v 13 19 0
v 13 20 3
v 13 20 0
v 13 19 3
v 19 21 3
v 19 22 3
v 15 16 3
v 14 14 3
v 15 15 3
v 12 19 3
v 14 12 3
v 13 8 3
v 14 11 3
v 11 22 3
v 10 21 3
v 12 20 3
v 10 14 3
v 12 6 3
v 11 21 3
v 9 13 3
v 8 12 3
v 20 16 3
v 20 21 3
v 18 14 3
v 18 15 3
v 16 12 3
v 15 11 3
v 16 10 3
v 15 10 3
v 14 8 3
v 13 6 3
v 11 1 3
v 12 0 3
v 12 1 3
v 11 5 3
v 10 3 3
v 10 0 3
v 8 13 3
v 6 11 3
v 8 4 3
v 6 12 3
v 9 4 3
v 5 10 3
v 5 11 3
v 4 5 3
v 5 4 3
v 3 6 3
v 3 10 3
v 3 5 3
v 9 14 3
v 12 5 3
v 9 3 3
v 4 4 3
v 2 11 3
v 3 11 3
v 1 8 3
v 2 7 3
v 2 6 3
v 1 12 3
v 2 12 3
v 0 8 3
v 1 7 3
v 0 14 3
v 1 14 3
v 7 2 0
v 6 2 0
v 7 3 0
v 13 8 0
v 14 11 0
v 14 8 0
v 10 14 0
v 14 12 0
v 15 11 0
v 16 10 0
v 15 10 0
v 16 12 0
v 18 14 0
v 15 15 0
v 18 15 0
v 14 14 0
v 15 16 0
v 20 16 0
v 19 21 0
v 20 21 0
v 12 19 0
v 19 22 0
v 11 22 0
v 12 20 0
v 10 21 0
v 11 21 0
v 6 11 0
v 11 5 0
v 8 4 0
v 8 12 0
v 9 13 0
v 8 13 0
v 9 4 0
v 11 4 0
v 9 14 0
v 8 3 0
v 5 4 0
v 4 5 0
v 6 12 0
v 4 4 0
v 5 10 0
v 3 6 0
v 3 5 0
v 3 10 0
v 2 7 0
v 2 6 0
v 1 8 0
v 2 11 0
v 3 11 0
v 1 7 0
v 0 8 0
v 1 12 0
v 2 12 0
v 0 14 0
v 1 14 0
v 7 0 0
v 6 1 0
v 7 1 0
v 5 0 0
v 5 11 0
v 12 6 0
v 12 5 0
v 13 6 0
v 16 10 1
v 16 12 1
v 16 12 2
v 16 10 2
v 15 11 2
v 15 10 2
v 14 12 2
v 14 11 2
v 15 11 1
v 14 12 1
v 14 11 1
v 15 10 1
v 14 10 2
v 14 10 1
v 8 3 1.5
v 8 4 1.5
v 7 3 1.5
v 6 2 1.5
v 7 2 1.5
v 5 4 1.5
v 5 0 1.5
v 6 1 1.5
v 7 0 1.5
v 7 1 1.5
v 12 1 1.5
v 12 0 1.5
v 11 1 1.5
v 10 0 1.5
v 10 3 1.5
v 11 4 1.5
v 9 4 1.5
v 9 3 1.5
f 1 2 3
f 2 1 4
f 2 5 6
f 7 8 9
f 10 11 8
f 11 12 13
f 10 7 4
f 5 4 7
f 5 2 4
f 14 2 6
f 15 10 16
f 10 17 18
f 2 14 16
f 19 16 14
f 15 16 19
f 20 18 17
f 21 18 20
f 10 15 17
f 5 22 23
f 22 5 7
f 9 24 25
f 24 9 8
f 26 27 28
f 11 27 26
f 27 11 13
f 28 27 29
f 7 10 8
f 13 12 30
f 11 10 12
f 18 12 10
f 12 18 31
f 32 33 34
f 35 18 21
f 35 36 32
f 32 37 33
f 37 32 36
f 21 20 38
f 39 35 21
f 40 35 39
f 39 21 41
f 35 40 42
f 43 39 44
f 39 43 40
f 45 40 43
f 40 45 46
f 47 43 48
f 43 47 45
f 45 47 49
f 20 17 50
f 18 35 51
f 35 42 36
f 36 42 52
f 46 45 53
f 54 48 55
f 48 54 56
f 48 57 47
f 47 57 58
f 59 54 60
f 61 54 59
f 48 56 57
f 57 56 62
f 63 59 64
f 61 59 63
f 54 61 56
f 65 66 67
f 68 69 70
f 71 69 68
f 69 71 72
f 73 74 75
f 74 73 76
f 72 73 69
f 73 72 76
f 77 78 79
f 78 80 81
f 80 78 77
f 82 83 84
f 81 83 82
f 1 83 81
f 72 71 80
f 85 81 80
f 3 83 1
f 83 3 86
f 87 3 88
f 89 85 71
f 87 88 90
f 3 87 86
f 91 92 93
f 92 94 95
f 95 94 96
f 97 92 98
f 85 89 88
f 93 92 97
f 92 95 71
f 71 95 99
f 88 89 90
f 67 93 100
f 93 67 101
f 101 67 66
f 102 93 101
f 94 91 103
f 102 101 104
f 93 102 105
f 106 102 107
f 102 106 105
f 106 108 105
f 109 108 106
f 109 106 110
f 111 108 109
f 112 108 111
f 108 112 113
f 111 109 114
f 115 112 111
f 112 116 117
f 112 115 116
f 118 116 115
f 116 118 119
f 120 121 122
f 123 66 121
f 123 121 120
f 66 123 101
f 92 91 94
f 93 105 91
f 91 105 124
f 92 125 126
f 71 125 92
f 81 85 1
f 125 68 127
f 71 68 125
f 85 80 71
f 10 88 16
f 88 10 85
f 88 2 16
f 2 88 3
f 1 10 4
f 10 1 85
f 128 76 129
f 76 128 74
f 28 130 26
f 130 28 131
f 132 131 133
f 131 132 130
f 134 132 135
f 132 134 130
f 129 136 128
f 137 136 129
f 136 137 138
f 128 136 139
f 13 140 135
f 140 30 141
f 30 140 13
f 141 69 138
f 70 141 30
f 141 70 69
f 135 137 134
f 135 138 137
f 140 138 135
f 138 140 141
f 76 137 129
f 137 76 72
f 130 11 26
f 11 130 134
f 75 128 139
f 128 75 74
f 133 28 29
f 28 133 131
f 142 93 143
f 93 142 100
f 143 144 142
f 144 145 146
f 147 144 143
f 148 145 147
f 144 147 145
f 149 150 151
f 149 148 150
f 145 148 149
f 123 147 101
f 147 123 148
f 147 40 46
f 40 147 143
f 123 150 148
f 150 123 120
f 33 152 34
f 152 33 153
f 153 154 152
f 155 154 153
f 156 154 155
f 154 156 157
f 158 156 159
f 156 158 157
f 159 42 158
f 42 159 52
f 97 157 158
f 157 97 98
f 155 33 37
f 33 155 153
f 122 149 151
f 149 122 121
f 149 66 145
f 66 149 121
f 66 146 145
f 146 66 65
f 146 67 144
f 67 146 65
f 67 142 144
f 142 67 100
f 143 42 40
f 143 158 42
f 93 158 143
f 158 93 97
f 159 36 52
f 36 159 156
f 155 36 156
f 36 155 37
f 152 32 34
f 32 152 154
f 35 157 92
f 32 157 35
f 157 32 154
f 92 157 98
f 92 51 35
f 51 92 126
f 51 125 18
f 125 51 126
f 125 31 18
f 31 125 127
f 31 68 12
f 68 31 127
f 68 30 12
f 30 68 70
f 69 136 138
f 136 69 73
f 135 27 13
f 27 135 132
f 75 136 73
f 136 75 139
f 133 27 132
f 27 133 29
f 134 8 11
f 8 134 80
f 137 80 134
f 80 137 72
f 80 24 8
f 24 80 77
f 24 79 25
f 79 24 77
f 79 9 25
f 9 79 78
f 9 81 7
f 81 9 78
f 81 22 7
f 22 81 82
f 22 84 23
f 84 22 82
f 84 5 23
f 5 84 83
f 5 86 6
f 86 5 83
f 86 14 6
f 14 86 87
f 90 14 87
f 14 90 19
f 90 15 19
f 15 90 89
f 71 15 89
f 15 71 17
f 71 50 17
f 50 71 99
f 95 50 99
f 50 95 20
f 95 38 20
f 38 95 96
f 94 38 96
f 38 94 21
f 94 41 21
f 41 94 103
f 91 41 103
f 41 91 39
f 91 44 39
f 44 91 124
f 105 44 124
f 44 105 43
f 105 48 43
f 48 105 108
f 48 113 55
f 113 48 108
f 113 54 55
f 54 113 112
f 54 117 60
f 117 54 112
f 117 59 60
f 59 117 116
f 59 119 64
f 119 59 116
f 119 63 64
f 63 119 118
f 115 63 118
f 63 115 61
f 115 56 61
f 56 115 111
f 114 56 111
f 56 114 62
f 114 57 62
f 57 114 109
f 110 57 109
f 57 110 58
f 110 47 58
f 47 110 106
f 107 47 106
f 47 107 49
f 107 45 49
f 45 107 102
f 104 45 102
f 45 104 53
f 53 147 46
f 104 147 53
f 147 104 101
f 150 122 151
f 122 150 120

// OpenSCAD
/*
 * Lonely 3D-Rex
 * Copyright (c) 2019 Anar Software LLC. < http://anars.com >
 *
 * This program is free software: you can redistribute it and/or modify it under
 * the terms of the GNU General Public License as published by the Free Software
 * Foundation, either version 3 of the License, or (at your option) any later
 * version.
 *
 * This program is distributed in the hope that it will be useful, but WITHOUT
 * ANY WARRANTY; without even the implied warranty of MERCHANTABILITY or FITNESS
 * FOR A PARTICULAR PURPOSE. See the GNU General Public License for more details.
 *
 * You should have received a copy of the GNU General Public License along with
 * this program. If not, see < http://www.gnu.org/licenses/ >
 *
 */
difference() {
	linear_extrude(height = 3, center = false, $fn=100)
		polygon([[0,8],[0,14],[1,14],[1,12],[2,12],[2,11],[3,11],[3,10],[5,10],[5,11],[6,11],[6,12],[8,12],[8,13],[9,13],[9,14],[10,14],[10,21],[11,21],[11,22],[19,22],[19,21],[20,21],[20,16],[15,16],[15,15],[18,15],[18,14],[14,14],[14,12],[16,12],[16,10],[15,10],[15,11],[14,11],[14,8],[13,8],[13,6],[12,6],[12,5],[11,5],[11,1],[12,1],[12,0],[10,0],[10,3],[9,3],[9,4],[8,4],[8,3],[7,3],[7,2],[6,2],[6,1],[7,1],[7,0],[5,0],[5,4],[4,4],[4,5],[3,5],[3,6],[2,6],[2,7],[1,7],[1,8]]);
	union() {
		translate([12,19])
			cube([1,1,3]);
		translate([14,10, 1])
			cube([2,2,1]);
		translate([5,0, 1.5])
			cube([3,4,1.5]);
		translate([9,0, 0])
			cube([3,4,1.5]);
	}
}
